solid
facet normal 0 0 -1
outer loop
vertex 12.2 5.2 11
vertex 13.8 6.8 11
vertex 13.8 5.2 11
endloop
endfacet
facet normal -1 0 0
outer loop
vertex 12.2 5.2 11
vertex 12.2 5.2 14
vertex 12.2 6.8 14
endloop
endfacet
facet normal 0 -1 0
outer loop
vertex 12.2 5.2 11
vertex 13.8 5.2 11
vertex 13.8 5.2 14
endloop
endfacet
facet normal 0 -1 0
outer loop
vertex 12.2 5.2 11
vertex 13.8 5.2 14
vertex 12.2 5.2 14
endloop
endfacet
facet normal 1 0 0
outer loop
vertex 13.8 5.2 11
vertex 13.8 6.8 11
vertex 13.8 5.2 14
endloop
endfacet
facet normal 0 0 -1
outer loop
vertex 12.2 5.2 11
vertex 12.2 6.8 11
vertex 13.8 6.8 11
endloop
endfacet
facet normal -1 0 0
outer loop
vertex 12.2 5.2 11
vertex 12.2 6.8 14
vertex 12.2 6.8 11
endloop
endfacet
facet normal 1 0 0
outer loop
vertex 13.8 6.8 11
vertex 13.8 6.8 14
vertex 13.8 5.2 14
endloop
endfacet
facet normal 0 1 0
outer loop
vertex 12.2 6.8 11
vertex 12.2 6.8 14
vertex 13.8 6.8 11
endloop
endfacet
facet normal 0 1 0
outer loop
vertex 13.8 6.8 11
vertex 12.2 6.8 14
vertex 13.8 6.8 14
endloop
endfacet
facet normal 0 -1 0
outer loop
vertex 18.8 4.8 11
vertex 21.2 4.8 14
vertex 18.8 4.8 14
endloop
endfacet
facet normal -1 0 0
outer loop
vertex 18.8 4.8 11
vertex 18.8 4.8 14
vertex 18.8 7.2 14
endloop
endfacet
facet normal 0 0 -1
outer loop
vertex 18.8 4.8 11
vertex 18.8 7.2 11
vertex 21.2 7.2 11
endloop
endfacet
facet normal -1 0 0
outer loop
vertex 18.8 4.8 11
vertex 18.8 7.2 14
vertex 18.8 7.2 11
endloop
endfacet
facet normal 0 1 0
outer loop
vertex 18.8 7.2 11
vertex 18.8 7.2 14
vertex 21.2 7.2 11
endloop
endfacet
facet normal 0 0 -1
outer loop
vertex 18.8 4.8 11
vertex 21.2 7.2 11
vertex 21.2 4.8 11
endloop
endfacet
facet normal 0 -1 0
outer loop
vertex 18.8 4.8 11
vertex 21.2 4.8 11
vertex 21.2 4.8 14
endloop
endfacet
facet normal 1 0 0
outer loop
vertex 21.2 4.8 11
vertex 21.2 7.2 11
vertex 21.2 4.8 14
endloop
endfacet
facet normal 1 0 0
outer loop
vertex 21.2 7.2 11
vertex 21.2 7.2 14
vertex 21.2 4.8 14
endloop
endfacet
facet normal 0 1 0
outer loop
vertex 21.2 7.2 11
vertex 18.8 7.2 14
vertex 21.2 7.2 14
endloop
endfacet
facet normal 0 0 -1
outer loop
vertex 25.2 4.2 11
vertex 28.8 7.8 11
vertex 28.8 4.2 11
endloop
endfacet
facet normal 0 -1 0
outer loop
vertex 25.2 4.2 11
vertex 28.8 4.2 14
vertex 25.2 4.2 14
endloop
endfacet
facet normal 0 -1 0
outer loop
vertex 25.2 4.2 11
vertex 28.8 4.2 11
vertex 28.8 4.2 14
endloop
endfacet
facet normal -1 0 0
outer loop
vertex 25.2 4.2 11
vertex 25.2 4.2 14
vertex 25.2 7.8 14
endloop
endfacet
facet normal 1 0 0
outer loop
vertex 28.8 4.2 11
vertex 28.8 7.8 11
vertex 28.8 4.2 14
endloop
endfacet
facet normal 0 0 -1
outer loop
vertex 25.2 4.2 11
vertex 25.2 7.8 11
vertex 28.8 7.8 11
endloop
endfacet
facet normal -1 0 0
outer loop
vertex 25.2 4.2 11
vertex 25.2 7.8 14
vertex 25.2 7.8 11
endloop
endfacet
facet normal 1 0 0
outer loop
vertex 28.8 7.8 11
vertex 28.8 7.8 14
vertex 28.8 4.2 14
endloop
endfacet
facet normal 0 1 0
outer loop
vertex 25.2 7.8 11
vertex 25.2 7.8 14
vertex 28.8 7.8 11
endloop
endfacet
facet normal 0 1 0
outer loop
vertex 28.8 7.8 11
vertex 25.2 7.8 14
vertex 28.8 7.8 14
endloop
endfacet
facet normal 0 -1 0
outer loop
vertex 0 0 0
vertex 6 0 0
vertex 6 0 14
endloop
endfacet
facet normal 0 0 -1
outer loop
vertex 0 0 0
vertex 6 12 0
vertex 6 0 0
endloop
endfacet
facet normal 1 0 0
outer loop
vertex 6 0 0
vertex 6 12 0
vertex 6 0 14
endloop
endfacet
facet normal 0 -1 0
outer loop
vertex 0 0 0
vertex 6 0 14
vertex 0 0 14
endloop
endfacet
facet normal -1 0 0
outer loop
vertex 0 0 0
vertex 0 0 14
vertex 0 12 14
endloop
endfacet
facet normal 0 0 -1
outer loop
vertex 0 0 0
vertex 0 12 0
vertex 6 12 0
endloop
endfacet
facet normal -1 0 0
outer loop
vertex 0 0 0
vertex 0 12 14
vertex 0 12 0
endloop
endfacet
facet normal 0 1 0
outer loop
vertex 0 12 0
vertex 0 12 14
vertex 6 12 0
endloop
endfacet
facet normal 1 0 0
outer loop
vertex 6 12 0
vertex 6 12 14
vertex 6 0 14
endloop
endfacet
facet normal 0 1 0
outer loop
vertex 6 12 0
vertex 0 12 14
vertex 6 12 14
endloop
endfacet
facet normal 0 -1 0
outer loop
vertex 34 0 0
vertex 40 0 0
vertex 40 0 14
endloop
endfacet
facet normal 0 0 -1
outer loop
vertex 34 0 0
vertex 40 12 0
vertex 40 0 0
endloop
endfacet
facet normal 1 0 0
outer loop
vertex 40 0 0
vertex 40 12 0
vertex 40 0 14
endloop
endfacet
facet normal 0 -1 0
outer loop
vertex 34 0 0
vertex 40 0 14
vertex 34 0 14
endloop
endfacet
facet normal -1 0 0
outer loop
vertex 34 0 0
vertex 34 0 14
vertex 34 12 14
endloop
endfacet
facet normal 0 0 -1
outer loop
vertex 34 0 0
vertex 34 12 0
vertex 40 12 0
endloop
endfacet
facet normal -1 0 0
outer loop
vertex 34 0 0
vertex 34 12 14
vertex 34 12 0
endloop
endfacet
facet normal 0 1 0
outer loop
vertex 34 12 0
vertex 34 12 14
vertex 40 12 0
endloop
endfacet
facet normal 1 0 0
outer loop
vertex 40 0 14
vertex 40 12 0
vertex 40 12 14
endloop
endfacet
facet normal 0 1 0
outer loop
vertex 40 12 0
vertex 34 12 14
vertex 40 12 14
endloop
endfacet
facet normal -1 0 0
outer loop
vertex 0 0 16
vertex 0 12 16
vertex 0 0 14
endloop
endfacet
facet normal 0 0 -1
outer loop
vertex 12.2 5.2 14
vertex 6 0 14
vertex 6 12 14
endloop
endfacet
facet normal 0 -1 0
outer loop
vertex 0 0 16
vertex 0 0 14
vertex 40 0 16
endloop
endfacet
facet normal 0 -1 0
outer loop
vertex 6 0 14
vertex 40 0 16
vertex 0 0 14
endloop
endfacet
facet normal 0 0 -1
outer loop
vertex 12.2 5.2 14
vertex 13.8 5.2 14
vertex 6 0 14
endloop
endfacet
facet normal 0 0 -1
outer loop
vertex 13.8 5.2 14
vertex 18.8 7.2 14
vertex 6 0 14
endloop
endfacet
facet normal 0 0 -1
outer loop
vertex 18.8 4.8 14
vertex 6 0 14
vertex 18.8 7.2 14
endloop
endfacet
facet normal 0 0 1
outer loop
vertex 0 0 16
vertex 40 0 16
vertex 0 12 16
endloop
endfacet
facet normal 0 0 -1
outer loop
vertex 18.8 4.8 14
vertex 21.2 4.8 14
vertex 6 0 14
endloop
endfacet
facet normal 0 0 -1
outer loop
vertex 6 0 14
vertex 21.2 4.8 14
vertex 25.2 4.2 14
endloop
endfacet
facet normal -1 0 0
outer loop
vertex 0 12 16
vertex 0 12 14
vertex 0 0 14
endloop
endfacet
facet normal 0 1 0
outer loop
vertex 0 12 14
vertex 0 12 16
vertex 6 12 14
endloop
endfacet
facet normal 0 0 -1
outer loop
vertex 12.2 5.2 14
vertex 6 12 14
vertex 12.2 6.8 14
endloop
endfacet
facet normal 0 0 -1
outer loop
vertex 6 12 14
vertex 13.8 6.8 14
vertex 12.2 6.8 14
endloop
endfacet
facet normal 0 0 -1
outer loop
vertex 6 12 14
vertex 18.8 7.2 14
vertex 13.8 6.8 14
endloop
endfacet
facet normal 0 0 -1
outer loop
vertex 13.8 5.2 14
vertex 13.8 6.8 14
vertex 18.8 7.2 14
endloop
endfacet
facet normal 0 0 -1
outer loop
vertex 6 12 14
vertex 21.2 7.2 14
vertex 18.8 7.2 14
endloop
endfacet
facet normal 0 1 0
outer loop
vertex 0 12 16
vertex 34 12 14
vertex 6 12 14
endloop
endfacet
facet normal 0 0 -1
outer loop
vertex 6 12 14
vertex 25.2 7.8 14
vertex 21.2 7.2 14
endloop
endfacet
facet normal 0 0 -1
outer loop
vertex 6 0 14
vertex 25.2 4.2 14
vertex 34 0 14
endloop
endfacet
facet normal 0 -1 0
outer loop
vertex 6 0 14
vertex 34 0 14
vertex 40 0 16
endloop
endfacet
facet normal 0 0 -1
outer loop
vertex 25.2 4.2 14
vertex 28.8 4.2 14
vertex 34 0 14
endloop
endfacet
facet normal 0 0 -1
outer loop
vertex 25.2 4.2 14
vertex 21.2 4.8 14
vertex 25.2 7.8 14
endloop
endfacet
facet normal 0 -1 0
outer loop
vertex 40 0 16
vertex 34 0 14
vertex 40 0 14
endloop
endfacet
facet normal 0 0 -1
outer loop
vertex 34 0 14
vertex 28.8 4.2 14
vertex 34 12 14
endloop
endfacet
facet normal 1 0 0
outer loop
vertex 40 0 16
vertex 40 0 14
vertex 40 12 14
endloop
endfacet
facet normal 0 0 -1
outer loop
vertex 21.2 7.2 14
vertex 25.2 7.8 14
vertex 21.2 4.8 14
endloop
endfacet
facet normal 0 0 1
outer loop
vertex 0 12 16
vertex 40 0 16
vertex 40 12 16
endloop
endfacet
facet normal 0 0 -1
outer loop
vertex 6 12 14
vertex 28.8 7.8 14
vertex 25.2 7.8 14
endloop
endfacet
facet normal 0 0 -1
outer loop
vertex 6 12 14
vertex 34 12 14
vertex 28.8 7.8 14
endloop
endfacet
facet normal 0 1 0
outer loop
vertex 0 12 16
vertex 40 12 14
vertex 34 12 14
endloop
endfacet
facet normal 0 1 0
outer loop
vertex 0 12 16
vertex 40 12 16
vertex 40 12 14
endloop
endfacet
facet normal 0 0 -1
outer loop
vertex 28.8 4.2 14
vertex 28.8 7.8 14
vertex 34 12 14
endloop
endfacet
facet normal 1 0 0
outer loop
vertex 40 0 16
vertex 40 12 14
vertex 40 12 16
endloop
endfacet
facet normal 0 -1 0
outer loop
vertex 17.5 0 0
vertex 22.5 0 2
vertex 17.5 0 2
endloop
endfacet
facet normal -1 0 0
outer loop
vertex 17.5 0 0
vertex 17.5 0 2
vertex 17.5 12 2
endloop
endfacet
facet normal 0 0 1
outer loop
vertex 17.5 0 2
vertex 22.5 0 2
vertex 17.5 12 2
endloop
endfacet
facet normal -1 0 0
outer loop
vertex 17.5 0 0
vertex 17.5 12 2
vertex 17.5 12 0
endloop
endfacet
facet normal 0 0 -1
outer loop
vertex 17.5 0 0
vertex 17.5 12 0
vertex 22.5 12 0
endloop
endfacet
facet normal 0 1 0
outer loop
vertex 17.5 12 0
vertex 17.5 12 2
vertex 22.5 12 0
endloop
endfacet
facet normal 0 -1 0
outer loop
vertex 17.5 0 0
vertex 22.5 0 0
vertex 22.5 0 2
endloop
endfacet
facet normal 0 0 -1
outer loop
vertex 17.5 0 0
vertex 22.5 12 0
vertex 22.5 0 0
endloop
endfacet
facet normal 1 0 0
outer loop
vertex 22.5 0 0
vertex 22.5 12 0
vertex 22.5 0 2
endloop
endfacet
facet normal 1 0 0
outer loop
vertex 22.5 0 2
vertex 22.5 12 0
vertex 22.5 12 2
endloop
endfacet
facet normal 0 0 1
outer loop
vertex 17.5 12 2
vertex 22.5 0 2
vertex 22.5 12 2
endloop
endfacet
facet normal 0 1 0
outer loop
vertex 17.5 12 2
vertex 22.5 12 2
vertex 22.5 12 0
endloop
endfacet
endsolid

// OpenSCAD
// A second test piece: a roof on two pillars, with three small tips hanging down from it.
// The roof needs supports and gets them. Each tip starts in mid-air, a few layers below the roof.
// A low block of the model lies under the middle tip: with "On build plate only", the supports
// may not stand on it, so that tip gets none.

roof = [40, 12, 2];    // mm
height = 14;           // mm, the roof's underside above the bed
pillar = 6;            // mm
tips = [1.6, 2.4, 3.6];  // mm, the side of each square tip
tip_drop = 3;          // mm a tip hangs below the roof
block = [5, 12, 2];    // mm, the block under the middle tip

cube([pillar, roof.y, height]);
translate([roof.x - pillar, 0, 0]) cube([pillar, roof.y, height]);
translate([0, 0, height]) cube(roof);
for (i = [0 : len(tips) - 1])
    translate([pillar + (i + 1) * (roof.x - 2 * pillar) / (len(tips) + 1) - tips[i] / 2, roof.y / 2 - tips[i] / 2, height - tip_drop])
        cube([tips[i], tips[i], tip_drop]);
translate([roof.x / 2 - block.x / 2, 0, 0]) cube(block);
